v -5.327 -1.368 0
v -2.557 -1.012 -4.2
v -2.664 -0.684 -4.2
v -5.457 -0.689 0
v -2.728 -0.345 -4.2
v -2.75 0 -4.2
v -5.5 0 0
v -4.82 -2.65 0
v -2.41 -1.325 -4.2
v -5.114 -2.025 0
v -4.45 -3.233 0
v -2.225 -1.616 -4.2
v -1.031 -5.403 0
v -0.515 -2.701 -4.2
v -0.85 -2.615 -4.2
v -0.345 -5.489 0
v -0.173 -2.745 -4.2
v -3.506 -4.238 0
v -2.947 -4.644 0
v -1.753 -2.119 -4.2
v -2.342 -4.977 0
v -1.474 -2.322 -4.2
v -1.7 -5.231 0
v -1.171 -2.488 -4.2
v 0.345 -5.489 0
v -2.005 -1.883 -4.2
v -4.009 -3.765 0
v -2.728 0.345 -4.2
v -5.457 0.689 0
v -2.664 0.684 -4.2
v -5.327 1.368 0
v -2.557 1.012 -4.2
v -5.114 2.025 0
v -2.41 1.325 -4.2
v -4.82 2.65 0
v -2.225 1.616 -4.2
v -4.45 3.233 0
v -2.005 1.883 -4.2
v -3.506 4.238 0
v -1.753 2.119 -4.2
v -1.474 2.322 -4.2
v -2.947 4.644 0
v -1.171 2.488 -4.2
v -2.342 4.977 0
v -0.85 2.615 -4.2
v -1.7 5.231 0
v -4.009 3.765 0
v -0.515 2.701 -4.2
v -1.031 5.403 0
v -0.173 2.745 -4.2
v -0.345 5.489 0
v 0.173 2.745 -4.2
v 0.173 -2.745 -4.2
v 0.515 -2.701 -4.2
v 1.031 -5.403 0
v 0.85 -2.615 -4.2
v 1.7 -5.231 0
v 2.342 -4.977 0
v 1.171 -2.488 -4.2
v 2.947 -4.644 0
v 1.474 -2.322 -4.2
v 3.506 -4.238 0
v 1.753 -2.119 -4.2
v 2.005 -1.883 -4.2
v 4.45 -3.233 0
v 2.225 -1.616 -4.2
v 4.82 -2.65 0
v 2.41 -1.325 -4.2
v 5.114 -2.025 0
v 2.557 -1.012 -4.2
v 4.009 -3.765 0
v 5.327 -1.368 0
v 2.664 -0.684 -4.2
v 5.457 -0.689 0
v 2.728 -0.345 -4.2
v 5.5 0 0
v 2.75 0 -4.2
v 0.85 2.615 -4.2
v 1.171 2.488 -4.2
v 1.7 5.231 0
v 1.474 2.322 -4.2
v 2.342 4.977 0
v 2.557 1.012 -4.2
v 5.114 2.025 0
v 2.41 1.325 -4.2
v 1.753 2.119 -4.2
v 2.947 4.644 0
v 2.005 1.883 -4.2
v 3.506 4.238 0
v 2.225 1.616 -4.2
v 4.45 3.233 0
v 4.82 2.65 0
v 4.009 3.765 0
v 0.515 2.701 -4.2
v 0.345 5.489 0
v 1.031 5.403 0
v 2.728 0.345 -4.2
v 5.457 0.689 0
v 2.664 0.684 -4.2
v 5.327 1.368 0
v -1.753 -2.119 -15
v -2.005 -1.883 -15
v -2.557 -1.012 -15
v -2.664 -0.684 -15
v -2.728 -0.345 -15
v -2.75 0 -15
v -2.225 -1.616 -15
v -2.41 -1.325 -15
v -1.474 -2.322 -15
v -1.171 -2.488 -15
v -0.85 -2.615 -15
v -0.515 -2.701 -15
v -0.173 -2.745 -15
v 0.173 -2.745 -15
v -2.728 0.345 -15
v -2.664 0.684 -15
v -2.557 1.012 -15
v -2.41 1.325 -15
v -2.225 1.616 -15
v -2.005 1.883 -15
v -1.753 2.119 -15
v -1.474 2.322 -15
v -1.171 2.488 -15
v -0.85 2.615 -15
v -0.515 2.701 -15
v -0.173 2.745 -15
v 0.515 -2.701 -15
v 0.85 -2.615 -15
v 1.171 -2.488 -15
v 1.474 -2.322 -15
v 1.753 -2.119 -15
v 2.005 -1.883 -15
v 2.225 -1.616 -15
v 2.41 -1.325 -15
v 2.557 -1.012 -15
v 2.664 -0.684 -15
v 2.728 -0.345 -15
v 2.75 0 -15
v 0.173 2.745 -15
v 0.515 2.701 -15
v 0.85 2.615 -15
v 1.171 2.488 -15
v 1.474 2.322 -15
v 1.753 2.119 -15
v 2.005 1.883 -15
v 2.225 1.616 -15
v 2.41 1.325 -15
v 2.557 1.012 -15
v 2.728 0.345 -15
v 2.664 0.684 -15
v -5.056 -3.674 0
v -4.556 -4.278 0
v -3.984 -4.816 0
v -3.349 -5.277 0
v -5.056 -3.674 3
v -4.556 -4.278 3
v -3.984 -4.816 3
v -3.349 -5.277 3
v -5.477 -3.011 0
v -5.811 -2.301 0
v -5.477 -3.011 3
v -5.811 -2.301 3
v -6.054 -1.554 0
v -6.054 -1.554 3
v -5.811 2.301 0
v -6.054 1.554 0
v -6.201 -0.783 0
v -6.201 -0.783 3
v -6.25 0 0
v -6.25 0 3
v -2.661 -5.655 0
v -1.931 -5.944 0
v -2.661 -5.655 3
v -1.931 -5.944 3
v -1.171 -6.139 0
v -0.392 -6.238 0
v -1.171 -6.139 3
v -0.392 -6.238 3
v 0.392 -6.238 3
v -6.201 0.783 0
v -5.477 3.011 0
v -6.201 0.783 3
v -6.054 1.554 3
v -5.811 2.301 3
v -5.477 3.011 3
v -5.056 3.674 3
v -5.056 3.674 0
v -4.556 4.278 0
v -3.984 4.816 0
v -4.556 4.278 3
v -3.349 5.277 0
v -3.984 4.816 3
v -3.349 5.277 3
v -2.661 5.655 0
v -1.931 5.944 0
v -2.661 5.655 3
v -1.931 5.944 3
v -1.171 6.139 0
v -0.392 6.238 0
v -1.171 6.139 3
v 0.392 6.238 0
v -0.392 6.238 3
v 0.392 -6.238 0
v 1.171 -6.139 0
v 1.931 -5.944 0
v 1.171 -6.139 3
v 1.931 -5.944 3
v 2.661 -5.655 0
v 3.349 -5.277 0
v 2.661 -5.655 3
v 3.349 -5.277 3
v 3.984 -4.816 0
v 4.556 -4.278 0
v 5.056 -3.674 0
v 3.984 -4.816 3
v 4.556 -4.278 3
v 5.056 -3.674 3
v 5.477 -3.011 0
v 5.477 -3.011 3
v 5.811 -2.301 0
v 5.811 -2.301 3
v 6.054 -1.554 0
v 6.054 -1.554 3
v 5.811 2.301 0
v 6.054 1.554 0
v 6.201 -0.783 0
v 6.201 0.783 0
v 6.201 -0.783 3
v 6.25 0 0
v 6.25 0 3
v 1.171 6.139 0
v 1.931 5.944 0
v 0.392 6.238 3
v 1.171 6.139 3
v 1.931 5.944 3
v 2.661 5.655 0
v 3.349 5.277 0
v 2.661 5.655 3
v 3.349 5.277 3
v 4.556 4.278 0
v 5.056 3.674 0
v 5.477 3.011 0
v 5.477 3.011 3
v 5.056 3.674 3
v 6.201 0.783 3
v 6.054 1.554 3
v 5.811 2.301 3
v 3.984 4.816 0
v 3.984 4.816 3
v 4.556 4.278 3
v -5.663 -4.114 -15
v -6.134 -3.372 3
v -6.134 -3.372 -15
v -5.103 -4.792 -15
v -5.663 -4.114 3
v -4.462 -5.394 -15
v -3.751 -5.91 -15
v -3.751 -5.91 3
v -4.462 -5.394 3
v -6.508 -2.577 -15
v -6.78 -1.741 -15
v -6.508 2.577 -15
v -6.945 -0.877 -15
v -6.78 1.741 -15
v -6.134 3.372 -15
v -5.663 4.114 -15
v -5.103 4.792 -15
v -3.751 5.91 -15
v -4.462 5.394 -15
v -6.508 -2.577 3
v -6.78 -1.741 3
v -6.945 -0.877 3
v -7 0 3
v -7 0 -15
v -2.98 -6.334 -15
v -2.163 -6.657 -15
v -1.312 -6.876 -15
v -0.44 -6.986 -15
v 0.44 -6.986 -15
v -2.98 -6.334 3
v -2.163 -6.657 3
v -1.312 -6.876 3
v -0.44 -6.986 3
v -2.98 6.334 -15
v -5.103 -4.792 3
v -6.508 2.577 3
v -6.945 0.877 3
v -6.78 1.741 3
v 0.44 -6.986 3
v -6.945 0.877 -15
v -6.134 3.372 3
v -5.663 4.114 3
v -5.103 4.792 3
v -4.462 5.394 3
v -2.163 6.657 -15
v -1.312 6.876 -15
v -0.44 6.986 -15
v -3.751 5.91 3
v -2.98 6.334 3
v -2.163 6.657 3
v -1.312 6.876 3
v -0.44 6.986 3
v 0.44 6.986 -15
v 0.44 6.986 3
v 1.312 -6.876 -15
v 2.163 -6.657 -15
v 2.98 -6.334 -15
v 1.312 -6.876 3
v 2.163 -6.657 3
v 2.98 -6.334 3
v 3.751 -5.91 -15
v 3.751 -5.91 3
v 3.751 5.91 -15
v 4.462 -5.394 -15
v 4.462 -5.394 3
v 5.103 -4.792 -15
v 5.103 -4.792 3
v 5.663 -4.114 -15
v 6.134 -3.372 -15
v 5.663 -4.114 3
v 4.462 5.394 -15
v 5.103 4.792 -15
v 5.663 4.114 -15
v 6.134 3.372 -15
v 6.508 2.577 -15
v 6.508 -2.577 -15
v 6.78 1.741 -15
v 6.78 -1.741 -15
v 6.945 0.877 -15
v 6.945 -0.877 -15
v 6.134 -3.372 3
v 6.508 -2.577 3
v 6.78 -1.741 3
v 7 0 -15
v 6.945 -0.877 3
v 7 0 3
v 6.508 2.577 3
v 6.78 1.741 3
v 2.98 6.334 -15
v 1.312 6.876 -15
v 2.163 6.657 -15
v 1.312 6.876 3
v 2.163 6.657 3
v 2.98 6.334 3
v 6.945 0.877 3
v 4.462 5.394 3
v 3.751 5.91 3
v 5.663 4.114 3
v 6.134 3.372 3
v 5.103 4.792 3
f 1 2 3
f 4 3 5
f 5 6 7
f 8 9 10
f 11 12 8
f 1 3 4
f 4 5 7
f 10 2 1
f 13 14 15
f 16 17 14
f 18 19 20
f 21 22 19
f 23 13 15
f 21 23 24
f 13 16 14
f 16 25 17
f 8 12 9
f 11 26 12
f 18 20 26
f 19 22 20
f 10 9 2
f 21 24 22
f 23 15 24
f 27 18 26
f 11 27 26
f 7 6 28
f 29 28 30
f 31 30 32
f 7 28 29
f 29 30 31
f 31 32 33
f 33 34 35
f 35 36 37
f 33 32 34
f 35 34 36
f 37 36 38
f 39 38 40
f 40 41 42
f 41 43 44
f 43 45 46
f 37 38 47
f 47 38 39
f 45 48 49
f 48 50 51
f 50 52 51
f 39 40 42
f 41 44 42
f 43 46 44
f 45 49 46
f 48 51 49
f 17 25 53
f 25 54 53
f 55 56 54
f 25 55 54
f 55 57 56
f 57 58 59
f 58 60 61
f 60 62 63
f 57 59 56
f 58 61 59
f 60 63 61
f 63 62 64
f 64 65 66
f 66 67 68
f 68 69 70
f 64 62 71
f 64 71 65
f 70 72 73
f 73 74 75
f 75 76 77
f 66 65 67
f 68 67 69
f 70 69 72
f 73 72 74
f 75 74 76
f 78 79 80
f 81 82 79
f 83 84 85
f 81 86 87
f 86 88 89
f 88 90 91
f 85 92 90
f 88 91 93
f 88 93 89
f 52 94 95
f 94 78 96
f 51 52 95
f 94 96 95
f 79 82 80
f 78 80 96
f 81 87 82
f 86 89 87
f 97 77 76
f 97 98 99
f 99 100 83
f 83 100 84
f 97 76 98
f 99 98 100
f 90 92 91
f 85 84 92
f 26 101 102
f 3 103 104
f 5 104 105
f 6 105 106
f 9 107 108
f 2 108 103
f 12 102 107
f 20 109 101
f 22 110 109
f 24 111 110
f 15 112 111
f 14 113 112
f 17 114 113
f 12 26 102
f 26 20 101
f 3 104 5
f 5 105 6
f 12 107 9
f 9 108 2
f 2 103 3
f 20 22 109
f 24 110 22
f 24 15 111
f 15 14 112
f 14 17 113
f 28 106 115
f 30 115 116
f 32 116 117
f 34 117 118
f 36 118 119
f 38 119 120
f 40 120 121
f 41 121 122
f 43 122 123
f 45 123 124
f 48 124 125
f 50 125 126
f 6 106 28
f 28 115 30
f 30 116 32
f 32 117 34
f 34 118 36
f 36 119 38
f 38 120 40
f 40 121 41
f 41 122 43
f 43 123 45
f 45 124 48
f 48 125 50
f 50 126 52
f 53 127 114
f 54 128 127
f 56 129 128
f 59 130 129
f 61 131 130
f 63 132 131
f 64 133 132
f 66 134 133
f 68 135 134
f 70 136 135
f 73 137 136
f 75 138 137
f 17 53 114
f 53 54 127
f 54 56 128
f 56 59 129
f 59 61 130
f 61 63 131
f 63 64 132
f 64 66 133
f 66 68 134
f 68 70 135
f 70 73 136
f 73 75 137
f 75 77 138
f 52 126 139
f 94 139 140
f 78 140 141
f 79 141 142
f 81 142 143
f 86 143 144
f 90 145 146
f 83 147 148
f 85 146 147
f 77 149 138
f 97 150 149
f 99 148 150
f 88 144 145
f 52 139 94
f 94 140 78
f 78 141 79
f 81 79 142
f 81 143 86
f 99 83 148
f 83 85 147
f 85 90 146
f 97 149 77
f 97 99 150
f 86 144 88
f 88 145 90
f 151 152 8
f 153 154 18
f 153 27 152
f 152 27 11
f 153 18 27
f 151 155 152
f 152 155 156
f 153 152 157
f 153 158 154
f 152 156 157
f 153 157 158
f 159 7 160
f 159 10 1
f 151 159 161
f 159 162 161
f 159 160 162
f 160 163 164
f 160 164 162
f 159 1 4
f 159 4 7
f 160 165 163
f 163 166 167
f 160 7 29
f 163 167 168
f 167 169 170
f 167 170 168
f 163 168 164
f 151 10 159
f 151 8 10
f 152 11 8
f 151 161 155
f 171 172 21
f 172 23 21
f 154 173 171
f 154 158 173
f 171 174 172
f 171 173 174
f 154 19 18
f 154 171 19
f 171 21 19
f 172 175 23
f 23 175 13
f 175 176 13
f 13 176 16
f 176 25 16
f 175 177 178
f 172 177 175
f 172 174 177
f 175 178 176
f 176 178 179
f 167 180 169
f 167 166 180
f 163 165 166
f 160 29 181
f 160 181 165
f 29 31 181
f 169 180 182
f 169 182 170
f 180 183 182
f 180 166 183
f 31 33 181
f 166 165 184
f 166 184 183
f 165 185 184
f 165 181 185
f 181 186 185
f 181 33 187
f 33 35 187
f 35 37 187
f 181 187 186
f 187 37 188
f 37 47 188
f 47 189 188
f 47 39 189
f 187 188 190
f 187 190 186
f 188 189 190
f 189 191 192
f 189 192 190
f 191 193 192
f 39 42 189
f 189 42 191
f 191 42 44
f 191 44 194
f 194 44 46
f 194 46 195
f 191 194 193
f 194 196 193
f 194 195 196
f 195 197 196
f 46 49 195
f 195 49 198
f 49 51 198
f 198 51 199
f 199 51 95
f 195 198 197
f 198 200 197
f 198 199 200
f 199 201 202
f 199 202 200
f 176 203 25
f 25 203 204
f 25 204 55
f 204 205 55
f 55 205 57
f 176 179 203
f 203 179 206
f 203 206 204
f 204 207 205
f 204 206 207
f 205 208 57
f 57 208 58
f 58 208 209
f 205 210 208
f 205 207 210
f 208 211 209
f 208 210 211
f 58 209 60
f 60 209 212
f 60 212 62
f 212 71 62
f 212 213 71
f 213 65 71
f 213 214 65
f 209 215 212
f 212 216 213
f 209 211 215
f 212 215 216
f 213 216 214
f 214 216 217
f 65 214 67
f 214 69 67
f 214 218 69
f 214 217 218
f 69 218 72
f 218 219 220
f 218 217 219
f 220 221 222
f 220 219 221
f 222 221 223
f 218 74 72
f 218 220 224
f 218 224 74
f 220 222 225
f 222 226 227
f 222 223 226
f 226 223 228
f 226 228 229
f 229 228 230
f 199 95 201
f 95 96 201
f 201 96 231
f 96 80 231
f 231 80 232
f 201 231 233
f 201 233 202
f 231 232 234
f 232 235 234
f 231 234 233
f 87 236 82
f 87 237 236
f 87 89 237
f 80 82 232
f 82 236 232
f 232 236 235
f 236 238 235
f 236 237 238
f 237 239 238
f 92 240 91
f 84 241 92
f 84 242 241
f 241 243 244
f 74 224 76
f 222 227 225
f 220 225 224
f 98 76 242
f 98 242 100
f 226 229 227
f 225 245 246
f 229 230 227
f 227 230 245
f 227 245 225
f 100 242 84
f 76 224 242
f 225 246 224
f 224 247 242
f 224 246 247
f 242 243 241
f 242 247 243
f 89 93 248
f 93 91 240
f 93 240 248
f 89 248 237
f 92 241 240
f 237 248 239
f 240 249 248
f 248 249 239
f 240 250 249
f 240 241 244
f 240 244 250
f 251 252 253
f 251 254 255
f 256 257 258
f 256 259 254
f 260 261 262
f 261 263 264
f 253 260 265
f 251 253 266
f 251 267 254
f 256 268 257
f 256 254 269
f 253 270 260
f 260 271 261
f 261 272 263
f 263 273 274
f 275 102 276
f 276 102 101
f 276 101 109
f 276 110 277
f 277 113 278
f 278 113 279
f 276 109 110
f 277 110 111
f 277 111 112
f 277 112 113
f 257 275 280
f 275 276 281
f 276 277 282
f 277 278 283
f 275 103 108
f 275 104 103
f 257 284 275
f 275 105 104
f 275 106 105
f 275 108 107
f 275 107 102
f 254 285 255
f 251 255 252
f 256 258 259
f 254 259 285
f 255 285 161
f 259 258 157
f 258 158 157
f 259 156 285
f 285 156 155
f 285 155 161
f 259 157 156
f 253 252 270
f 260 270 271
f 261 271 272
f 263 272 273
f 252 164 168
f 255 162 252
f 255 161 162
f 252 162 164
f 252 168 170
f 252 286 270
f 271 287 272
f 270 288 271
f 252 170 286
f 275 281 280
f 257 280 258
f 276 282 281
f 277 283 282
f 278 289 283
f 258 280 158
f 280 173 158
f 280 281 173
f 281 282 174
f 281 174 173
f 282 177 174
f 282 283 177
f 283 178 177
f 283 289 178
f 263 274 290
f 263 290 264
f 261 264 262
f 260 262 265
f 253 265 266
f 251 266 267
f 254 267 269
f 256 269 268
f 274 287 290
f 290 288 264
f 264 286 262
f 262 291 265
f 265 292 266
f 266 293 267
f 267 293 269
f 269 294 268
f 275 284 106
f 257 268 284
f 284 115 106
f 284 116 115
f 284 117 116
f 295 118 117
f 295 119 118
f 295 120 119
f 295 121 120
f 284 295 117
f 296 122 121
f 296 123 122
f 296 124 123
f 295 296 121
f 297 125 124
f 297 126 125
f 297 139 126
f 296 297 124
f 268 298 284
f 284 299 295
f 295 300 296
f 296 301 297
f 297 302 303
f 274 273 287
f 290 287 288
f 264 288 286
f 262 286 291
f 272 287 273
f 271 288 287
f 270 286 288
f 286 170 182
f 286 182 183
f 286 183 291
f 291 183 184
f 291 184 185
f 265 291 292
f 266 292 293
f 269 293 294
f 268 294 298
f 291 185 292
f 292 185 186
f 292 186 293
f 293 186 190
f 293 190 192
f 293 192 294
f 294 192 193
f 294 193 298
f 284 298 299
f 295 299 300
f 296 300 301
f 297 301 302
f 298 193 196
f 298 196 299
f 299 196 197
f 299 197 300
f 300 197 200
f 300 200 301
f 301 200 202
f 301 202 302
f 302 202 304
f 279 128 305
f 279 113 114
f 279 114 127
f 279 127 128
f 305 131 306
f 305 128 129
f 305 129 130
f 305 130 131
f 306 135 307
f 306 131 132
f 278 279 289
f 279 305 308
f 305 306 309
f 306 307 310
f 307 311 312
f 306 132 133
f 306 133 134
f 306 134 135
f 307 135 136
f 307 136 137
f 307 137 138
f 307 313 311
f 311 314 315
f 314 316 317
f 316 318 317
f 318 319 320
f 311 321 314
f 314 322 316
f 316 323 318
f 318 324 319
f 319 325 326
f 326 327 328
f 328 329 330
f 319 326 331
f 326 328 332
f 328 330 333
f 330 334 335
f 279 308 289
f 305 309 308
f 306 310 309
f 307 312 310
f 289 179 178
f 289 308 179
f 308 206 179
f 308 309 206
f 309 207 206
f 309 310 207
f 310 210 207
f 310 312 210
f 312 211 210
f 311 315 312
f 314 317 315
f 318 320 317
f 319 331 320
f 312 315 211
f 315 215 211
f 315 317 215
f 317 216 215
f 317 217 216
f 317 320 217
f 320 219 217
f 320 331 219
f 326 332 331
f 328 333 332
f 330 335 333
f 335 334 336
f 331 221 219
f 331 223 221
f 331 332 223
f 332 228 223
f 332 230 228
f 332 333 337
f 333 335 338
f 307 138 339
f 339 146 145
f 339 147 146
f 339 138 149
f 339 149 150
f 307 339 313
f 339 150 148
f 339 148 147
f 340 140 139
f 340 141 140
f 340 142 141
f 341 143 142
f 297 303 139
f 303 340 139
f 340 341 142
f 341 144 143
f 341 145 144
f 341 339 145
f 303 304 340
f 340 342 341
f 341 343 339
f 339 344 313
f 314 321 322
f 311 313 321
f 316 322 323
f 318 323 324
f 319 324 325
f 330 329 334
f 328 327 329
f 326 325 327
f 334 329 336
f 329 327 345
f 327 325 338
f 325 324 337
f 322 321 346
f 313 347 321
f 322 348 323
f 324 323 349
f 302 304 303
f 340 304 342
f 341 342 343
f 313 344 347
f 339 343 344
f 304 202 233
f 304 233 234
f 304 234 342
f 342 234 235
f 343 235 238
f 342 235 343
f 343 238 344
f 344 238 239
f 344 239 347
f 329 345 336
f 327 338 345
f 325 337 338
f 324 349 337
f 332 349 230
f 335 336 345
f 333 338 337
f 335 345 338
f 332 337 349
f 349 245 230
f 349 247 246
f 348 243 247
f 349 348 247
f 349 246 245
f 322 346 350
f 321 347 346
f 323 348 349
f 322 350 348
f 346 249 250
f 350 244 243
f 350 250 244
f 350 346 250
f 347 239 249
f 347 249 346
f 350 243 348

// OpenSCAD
$fn = 50;


difference() {
	union() {
		translate(v = [0, 0, -15.0000000000]) {
			cylinder(h = 18, r = 7.0000000000);
		}
	}
	union() {
		translate(v = [0, 0, 0]) {
			rotate(a = [0, 0, 0]) {
				difference() {
					union() {
						translate(v = [0, 0, -18.0000000000]) {
							cylinder(h = 18, r = 2.2500000000);
						}
						translate(v = [0, 0, -4.2000000000]) {
							cylinder(h = 4.2000000000, r1 = 2.7500000000, r2 = 5.5000000000);
						}
						translate(v = [0, 0, -18.0000000000]) {
							cylinder(h = 18, r = 2.7500000000);
						}
						translate(v = [0, 0, -18.0000000000]) {
							cylinder(h = 18, r = 2.2500000000);
						}
					}
					union();
				}
			}
		}
		#cylinder(h = 3, r = 6.2500000000);
	}
}
